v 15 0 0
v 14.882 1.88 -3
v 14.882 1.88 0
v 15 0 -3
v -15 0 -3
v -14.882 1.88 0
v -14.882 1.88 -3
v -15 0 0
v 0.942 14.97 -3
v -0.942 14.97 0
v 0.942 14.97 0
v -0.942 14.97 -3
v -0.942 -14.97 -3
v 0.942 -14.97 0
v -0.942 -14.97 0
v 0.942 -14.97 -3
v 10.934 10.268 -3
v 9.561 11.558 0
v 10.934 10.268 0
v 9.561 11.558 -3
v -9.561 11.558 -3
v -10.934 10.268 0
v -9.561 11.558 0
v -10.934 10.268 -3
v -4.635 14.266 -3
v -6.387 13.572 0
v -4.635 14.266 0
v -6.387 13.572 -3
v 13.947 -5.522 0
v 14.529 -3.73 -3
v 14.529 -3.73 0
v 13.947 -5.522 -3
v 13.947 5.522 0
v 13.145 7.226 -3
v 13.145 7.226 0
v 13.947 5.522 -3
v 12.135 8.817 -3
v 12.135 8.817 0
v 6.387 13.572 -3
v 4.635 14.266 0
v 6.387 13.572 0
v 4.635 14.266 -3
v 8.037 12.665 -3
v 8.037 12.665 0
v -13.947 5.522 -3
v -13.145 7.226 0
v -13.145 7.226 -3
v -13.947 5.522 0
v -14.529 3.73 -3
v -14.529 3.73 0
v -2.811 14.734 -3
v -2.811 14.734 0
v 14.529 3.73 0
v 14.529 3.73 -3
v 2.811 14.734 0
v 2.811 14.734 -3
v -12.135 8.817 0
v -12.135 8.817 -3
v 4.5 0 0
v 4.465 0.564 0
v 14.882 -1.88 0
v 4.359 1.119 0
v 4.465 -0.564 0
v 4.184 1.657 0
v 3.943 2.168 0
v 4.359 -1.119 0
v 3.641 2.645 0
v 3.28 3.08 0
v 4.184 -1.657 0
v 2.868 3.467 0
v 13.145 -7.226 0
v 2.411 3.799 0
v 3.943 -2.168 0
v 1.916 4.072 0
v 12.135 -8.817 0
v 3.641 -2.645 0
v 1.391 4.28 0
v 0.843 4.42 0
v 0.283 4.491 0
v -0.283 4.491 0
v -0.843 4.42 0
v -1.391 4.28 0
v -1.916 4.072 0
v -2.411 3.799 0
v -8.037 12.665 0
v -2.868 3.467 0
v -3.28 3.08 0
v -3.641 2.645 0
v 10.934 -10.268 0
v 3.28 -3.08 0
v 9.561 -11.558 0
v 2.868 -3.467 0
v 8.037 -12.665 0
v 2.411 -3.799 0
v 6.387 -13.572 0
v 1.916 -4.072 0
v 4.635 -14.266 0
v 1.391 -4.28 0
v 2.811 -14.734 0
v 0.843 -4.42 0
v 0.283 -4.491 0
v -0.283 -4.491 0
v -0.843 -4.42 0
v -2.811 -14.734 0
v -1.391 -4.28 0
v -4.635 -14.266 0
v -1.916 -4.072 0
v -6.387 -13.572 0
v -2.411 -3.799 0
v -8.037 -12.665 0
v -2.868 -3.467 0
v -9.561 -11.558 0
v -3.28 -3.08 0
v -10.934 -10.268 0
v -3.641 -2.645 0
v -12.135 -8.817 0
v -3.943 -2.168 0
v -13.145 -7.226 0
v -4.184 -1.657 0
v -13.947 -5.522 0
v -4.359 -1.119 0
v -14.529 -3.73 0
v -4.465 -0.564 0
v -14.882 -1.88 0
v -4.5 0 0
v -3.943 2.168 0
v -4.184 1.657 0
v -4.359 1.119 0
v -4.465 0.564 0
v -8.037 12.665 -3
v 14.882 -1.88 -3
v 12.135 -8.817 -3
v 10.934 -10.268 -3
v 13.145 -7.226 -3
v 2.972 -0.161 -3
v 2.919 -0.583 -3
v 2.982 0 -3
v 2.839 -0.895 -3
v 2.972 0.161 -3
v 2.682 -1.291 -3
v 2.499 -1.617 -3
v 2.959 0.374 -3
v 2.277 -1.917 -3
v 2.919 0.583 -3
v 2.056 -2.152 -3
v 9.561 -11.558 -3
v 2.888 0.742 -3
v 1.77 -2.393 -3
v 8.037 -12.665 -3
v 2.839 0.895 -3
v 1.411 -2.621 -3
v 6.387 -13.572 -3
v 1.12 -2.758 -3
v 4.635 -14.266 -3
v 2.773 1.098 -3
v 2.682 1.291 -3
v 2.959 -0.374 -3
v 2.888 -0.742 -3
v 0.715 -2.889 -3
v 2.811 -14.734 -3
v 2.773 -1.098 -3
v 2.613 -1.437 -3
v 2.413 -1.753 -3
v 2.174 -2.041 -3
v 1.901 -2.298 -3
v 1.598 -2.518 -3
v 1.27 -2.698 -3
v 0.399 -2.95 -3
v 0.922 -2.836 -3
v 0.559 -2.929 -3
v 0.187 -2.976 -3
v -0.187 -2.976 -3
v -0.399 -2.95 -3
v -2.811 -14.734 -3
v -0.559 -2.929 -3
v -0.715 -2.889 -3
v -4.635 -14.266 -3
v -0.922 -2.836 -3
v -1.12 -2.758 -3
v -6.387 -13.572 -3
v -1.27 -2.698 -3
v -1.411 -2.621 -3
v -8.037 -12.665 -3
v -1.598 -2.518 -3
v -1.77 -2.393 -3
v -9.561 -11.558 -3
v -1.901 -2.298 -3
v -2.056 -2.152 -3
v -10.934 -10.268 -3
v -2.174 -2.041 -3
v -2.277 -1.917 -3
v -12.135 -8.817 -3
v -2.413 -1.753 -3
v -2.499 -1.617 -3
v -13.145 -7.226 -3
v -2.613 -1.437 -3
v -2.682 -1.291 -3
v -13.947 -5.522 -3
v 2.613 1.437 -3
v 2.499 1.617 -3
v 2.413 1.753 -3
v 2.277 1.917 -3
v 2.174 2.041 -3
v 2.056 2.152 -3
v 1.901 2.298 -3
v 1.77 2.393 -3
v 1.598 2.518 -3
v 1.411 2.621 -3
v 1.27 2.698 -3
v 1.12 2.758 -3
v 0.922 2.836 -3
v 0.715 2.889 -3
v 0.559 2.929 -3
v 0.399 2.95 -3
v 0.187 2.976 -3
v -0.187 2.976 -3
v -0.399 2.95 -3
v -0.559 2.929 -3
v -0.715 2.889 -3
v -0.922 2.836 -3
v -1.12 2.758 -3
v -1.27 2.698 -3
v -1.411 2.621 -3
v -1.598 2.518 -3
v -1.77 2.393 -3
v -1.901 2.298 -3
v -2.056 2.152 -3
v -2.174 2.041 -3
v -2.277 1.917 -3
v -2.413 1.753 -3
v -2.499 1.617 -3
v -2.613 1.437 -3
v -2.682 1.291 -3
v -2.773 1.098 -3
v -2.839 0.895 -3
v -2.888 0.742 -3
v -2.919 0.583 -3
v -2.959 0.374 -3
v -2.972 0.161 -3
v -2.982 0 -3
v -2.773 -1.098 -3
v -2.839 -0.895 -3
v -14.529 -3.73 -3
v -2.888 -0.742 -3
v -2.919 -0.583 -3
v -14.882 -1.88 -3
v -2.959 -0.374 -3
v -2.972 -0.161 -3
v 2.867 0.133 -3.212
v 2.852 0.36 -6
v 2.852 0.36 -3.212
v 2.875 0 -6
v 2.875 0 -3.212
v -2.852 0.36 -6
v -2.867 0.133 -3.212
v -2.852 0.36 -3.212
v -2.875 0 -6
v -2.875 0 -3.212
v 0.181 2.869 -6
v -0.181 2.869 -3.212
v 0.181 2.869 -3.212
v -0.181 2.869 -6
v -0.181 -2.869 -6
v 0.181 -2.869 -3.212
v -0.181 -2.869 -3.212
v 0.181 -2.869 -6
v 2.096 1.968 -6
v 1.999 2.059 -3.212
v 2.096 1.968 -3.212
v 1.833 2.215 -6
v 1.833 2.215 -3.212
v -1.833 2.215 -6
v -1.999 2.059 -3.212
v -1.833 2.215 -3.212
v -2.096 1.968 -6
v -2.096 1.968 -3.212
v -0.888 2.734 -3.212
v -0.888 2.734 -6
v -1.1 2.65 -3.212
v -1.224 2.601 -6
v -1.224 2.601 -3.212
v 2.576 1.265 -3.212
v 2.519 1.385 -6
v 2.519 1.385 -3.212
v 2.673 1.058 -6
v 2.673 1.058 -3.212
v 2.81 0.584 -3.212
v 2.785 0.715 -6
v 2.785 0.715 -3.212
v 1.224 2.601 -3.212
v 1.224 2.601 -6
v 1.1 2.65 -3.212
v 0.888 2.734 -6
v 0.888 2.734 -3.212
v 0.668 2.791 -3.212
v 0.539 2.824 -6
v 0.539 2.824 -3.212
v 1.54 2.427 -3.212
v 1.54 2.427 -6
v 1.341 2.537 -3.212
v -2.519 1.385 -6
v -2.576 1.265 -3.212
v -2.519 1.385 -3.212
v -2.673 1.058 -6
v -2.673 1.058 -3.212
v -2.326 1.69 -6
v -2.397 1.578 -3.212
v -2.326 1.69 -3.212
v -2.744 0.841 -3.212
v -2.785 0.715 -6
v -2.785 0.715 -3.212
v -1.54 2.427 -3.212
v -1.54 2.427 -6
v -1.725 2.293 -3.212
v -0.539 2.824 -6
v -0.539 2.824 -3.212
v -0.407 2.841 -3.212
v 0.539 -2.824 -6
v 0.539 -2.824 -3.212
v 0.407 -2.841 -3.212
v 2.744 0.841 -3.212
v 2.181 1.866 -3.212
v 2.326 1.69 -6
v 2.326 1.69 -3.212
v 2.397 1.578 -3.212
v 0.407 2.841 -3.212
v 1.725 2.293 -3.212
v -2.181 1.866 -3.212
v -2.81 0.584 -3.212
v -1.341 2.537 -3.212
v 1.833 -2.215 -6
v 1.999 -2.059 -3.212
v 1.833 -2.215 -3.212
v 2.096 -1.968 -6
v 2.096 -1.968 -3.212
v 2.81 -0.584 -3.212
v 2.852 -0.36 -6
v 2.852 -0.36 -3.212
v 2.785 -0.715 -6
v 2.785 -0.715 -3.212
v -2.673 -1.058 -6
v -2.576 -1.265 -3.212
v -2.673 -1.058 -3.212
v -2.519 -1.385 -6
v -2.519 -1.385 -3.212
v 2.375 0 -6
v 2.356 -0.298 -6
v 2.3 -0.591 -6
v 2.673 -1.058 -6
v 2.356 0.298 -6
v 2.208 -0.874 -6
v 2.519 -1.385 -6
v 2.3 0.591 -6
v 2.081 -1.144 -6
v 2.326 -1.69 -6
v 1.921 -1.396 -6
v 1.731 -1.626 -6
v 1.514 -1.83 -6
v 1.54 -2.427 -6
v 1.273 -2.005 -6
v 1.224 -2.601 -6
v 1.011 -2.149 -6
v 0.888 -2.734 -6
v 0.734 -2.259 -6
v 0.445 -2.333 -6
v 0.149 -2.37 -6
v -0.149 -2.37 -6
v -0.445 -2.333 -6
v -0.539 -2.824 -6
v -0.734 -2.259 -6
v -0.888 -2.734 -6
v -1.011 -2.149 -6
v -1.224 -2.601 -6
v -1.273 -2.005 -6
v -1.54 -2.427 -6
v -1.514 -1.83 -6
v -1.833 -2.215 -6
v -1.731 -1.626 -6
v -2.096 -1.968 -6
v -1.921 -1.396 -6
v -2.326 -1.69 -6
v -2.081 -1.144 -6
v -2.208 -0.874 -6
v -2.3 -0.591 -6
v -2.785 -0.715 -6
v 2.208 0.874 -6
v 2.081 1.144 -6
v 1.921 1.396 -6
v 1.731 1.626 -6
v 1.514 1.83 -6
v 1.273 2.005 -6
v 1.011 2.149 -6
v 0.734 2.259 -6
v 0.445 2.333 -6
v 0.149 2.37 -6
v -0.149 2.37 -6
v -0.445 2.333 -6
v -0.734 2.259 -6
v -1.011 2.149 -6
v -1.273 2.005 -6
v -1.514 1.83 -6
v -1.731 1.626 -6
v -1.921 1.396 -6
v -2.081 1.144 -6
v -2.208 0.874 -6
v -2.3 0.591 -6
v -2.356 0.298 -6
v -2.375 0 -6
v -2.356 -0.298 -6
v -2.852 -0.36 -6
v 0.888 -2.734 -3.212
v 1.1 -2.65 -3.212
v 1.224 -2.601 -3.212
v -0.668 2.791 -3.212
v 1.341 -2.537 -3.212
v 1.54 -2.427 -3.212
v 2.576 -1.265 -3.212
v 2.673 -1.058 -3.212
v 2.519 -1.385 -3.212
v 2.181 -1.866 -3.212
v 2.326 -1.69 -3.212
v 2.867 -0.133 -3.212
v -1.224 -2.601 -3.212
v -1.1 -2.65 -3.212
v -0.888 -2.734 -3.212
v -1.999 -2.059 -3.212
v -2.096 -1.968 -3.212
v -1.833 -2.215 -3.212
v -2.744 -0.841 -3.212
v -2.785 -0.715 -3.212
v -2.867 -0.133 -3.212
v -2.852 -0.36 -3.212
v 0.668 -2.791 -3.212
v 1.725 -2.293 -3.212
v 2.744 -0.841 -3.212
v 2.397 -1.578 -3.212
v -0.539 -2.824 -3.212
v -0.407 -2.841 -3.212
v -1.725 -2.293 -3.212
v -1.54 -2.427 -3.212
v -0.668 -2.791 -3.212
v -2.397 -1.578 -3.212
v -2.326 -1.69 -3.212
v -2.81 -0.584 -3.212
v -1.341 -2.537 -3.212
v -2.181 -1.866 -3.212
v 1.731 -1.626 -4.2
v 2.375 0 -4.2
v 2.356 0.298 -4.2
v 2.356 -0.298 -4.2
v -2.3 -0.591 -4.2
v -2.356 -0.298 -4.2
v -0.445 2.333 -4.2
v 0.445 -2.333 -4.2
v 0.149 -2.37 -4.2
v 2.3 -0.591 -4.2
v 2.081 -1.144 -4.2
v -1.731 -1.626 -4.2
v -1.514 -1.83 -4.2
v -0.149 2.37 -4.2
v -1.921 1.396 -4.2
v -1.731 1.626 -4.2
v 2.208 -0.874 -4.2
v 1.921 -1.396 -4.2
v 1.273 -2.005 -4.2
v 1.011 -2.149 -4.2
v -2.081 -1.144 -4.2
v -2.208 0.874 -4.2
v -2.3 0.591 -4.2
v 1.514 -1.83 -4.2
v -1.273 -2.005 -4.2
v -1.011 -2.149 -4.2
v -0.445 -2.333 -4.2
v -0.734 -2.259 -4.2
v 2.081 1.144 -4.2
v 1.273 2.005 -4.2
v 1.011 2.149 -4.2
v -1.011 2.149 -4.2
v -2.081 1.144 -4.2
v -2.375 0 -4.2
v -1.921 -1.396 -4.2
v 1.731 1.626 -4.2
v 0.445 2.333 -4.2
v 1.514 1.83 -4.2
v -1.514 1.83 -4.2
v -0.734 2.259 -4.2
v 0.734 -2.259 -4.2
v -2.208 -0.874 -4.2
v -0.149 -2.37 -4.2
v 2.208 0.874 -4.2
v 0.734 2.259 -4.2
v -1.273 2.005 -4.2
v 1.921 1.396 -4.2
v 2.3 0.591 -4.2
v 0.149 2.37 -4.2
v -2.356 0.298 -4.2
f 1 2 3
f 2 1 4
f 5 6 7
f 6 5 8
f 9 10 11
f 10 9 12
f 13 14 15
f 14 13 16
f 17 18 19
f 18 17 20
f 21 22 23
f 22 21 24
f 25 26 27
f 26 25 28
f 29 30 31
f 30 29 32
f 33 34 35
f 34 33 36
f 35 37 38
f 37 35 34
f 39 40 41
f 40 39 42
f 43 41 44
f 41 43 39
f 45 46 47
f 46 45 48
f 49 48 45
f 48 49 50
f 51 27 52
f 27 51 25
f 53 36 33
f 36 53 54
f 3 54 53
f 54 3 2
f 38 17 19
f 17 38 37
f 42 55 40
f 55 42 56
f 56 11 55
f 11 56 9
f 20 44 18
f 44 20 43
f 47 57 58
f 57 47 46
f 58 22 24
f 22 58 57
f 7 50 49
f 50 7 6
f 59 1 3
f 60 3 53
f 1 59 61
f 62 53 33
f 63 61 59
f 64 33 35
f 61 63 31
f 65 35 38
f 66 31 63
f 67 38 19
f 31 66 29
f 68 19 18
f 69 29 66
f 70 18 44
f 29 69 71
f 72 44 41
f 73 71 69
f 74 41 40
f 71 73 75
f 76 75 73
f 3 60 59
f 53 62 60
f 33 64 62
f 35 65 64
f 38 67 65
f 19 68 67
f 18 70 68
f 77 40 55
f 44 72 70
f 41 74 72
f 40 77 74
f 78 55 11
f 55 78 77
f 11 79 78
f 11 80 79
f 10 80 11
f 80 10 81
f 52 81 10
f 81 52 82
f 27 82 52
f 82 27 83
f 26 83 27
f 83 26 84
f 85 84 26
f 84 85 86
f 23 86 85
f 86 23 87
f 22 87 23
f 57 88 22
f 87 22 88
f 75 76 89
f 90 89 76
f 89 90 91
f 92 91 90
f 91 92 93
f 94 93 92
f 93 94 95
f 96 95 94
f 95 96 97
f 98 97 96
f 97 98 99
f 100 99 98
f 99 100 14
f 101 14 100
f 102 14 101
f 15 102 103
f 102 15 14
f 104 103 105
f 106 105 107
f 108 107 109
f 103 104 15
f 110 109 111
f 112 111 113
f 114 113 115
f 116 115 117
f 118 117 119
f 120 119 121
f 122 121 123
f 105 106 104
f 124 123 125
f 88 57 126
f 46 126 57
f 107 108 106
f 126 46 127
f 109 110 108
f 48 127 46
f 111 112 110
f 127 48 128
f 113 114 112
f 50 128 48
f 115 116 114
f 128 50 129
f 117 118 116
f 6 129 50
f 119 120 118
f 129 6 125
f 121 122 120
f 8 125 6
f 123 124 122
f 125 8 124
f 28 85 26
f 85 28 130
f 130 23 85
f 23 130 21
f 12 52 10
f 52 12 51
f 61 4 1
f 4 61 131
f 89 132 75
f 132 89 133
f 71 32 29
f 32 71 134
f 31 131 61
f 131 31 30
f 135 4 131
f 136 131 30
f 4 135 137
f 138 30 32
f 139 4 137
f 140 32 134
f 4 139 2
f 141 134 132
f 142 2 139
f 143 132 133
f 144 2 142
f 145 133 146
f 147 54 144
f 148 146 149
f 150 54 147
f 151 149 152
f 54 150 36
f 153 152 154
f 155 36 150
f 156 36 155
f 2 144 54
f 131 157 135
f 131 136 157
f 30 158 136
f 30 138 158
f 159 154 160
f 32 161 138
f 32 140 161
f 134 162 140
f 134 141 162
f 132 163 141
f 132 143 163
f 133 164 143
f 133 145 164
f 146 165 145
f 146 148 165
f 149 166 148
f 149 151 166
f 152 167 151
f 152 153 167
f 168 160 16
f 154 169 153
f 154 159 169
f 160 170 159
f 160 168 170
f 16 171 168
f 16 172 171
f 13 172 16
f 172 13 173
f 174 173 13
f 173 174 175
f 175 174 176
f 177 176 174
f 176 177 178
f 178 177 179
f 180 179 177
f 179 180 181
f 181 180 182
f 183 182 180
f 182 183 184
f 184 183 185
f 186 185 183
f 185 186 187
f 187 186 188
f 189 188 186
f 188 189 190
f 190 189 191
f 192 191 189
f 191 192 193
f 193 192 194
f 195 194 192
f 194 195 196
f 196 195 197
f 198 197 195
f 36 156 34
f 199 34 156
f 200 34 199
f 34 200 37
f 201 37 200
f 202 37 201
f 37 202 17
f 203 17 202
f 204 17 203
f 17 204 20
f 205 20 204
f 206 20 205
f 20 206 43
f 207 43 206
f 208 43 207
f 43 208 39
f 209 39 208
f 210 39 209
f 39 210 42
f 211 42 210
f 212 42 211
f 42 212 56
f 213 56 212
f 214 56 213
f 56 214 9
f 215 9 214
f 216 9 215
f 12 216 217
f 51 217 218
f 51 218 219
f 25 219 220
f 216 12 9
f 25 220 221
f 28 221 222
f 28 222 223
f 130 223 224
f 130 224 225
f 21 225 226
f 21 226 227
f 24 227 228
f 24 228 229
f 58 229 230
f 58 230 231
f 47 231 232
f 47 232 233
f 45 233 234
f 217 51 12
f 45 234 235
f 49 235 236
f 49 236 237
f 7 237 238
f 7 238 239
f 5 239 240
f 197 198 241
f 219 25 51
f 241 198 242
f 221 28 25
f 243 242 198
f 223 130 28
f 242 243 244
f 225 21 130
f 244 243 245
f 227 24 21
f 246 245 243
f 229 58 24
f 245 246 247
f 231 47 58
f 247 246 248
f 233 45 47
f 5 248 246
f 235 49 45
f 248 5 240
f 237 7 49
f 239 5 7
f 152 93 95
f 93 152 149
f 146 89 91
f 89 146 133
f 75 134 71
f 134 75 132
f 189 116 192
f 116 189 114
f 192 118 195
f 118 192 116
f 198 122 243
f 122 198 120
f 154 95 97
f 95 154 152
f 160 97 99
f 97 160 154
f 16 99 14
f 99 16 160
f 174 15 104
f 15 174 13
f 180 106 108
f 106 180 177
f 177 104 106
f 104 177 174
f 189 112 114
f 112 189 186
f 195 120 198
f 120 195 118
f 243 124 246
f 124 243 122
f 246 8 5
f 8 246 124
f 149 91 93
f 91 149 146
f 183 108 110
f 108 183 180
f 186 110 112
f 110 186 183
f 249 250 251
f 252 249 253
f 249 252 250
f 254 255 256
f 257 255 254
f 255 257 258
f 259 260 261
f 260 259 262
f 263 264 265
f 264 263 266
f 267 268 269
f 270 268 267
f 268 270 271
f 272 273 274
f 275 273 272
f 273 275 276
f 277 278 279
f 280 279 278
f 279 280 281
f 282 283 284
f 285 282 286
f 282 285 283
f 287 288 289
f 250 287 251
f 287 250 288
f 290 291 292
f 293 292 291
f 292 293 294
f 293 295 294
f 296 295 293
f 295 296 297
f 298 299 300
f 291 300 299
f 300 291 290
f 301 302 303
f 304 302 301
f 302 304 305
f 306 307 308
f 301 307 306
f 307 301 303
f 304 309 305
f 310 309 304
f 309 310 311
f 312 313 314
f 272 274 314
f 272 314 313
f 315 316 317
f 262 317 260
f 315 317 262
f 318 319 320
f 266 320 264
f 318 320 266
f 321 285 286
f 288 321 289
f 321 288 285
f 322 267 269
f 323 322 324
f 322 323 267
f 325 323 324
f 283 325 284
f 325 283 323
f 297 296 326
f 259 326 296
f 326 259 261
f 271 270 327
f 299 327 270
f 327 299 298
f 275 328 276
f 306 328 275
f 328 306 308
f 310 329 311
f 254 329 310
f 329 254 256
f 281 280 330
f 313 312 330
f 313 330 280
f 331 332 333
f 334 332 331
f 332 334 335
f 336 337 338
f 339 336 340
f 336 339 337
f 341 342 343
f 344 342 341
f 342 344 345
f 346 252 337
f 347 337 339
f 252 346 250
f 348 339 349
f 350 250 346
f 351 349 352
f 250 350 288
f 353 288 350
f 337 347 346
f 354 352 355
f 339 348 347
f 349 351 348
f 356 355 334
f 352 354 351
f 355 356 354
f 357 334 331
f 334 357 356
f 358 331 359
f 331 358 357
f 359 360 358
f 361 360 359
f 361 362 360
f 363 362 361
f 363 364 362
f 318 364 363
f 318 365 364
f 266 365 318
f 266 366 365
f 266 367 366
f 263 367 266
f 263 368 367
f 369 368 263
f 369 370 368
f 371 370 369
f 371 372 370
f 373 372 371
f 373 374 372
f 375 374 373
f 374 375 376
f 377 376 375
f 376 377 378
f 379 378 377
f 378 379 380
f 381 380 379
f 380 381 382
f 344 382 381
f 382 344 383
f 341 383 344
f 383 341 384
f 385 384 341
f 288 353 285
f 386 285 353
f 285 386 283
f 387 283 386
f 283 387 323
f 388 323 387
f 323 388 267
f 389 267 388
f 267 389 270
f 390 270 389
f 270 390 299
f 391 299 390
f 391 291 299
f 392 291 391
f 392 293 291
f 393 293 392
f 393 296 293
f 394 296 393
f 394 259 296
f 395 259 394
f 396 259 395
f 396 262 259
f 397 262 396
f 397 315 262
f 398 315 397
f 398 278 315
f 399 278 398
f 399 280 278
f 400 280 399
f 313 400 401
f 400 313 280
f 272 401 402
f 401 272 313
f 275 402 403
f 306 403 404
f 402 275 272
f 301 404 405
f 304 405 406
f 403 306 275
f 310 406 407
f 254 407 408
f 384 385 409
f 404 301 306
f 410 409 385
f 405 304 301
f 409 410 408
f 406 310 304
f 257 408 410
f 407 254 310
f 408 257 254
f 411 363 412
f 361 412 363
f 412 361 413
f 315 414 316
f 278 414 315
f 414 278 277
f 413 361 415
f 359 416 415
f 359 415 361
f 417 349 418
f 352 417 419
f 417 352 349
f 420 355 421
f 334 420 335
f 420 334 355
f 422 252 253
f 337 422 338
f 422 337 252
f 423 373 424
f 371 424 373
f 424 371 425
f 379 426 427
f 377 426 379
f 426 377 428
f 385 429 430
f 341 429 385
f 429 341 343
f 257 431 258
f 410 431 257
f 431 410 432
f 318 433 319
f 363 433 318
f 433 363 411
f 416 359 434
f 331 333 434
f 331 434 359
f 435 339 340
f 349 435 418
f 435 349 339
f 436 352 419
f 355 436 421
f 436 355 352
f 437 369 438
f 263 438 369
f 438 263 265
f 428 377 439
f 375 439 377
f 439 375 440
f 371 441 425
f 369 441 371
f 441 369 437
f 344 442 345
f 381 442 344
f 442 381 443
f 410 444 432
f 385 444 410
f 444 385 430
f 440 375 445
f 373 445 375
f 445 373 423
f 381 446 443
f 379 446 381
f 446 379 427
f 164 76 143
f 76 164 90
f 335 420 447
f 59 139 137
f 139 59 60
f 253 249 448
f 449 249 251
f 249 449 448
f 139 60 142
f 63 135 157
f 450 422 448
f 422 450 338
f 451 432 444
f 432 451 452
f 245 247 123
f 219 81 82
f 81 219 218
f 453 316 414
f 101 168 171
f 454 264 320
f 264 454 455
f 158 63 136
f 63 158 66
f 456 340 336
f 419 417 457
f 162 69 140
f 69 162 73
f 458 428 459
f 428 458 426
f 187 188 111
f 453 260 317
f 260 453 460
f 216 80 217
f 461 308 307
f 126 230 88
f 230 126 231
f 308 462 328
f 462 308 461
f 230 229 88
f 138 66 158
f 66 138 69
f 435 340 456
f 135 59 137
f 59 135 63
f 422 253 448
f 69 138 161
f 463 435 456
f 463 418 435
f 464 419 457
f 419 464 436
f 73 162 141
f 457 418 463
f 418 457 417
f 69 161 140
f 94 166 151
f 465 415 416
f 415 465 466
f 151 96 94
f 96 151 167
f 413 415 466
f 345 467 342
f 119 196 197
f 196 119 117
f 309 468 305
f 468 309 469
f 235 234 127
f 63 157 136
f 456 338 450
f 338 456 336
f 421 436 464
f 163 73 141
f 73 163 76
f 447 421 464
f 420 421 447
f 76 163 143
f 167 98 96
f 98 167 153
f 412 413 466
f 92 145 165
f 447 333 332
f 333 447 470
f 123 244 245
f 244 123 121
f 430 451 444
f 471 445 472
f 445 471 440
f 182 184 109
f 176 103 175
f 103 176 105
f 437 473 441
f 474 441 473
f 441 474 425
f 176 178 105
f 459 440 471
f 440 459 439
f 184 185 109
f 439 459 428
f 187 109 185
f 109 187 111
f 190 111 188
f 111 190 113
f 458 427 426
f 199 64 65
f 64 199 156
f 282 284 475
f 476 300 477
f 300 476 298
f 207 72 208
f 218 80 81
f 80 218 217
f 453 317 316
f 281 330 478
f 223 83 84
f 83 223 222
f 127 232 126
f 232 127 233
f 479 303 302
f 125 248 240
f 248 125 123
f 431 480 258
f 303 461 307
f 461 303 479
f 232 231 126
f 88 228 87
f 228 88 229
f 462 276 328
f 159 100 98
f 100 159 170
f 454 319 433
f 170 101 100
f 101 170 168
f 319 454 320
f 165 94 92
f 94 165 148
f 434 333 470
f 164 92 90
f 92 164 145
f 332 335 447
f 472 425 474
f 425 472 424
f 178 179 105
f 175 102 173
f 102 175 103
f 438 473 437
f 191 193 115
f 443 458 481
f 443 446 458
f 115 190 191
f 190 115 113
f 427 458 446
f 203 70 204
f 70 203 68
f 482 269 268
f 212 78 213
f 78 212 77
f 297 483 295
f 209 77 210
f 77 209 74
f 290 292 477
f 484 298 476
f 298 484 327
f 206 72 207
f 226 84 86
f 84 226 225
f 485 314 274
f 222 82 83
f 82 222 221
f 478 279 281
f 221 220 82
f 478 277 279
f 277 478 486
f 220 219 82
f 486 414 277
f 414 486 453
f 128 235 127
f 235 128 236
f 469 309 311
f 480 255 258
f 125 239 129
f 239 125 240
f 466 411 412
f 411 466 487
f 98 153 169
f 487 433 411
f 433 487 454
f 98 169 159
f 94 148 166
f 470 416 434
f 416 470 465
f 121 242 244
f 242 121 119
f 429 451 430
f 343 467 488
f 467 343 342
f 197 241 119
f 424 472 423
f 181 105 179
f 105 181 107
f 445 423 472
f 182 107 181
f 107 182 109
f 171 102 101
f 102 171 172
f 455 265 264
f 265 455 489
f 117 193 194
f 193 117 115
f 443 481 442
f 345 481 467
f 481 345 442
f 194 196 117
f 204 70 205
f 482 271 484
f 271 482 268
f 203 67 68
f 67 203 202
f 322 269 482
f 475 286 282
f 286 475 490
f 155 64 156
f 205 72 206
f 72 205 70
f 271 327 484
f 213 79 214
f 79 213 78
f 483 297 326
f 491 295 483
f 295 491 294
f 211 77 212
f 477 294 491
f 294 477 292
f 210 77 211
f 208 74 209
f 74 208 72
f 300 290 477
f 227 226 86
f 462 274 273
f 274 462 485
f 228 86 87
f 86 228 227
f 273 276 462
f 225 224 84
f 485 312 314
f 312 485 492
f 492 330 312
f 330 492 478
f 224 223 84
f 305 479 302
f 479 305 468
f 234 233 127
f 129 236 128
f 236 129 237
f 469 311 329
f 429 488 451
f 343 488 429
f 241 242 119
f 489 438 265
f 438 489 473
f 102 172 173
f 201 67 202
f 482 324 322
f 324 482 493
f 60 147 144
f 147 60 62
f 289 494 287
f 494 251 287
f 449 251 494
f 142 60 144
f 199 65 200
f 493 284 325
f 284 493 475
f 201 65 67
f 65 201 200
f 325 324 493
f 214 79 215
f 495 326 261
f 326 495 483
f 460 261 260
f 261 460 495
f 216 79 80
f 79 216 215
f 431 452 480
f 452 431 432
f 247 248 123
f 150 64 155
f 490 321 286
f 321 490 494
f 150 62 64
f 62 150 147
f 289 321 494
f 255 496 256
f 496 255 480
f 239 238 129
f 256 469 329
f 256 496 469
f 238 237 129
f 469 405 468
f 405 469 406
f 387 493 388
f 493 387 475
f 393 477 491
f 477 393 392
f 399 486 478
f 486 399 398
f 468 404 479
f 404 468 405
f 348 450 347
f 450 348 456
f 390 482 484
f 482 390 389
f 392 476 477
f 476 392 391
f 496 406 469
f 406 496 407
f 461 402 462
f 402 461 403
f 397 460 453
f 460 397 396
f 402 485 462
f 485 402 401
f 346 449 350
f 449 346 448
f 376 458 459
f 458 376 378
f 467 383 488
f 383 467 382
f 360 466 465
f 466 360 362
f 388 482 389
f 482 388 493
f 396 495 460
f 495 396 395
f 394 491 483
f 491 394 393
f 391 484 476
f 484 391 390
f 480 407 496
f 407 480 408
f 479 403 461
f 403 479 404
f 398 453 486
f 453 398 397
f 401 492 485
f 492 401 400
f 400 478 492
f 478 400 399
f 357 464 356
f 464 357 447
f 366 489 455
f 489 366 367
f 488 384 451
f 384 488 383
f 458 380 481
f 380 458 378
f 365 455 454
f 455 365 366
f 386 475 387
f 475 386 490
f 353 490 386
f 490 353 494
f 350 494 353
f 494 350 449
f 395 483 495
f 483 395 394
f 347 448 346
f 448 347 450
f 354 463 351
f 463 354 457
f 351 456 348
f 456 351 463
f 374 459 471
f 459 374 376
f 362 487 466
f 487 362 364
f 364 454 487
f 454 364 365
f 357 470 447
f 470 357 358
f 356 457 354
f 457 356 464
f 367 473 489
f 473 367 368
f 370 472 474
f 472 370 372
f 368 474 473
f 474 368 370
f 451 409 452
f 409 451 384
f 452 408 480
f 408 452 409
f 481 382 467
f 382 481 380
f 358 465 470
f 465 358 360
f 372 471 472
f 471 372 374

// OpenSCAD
$fn = 50;

difference() {
	union() {
		translate(v = [0, 0, -3.0]) {
			cylinder(h = 3, r = 15.0);
		}
		#translate(v = [0, 0, -6.0]) {
			cylinder(h = 6, r = 2.875);
		}
	}
	union() {
		translate(v = [0, 0, 0]) {
			rotate(a = [0, 0, 0]) {
				difference() {
					union() {
						translate(v = [0, 0, -6.0]) {
							cylinder(h = 6, r = 2.25);
						}
						translate(v = [0, 0, -4.2]) {
							cylinder(h = 4.2, r1 = 2.375, r2 = 4.5);
						}
						translate(v = [0, 0, -6.0]) {
							cylinder(h = 6, r = 2.375);
						}
						translate(v = [0, 0, -6.0]) {
							cylinder(h = 6, r = 2.25);
						}
					}
					union();
				}
			}
		}
	}
}
